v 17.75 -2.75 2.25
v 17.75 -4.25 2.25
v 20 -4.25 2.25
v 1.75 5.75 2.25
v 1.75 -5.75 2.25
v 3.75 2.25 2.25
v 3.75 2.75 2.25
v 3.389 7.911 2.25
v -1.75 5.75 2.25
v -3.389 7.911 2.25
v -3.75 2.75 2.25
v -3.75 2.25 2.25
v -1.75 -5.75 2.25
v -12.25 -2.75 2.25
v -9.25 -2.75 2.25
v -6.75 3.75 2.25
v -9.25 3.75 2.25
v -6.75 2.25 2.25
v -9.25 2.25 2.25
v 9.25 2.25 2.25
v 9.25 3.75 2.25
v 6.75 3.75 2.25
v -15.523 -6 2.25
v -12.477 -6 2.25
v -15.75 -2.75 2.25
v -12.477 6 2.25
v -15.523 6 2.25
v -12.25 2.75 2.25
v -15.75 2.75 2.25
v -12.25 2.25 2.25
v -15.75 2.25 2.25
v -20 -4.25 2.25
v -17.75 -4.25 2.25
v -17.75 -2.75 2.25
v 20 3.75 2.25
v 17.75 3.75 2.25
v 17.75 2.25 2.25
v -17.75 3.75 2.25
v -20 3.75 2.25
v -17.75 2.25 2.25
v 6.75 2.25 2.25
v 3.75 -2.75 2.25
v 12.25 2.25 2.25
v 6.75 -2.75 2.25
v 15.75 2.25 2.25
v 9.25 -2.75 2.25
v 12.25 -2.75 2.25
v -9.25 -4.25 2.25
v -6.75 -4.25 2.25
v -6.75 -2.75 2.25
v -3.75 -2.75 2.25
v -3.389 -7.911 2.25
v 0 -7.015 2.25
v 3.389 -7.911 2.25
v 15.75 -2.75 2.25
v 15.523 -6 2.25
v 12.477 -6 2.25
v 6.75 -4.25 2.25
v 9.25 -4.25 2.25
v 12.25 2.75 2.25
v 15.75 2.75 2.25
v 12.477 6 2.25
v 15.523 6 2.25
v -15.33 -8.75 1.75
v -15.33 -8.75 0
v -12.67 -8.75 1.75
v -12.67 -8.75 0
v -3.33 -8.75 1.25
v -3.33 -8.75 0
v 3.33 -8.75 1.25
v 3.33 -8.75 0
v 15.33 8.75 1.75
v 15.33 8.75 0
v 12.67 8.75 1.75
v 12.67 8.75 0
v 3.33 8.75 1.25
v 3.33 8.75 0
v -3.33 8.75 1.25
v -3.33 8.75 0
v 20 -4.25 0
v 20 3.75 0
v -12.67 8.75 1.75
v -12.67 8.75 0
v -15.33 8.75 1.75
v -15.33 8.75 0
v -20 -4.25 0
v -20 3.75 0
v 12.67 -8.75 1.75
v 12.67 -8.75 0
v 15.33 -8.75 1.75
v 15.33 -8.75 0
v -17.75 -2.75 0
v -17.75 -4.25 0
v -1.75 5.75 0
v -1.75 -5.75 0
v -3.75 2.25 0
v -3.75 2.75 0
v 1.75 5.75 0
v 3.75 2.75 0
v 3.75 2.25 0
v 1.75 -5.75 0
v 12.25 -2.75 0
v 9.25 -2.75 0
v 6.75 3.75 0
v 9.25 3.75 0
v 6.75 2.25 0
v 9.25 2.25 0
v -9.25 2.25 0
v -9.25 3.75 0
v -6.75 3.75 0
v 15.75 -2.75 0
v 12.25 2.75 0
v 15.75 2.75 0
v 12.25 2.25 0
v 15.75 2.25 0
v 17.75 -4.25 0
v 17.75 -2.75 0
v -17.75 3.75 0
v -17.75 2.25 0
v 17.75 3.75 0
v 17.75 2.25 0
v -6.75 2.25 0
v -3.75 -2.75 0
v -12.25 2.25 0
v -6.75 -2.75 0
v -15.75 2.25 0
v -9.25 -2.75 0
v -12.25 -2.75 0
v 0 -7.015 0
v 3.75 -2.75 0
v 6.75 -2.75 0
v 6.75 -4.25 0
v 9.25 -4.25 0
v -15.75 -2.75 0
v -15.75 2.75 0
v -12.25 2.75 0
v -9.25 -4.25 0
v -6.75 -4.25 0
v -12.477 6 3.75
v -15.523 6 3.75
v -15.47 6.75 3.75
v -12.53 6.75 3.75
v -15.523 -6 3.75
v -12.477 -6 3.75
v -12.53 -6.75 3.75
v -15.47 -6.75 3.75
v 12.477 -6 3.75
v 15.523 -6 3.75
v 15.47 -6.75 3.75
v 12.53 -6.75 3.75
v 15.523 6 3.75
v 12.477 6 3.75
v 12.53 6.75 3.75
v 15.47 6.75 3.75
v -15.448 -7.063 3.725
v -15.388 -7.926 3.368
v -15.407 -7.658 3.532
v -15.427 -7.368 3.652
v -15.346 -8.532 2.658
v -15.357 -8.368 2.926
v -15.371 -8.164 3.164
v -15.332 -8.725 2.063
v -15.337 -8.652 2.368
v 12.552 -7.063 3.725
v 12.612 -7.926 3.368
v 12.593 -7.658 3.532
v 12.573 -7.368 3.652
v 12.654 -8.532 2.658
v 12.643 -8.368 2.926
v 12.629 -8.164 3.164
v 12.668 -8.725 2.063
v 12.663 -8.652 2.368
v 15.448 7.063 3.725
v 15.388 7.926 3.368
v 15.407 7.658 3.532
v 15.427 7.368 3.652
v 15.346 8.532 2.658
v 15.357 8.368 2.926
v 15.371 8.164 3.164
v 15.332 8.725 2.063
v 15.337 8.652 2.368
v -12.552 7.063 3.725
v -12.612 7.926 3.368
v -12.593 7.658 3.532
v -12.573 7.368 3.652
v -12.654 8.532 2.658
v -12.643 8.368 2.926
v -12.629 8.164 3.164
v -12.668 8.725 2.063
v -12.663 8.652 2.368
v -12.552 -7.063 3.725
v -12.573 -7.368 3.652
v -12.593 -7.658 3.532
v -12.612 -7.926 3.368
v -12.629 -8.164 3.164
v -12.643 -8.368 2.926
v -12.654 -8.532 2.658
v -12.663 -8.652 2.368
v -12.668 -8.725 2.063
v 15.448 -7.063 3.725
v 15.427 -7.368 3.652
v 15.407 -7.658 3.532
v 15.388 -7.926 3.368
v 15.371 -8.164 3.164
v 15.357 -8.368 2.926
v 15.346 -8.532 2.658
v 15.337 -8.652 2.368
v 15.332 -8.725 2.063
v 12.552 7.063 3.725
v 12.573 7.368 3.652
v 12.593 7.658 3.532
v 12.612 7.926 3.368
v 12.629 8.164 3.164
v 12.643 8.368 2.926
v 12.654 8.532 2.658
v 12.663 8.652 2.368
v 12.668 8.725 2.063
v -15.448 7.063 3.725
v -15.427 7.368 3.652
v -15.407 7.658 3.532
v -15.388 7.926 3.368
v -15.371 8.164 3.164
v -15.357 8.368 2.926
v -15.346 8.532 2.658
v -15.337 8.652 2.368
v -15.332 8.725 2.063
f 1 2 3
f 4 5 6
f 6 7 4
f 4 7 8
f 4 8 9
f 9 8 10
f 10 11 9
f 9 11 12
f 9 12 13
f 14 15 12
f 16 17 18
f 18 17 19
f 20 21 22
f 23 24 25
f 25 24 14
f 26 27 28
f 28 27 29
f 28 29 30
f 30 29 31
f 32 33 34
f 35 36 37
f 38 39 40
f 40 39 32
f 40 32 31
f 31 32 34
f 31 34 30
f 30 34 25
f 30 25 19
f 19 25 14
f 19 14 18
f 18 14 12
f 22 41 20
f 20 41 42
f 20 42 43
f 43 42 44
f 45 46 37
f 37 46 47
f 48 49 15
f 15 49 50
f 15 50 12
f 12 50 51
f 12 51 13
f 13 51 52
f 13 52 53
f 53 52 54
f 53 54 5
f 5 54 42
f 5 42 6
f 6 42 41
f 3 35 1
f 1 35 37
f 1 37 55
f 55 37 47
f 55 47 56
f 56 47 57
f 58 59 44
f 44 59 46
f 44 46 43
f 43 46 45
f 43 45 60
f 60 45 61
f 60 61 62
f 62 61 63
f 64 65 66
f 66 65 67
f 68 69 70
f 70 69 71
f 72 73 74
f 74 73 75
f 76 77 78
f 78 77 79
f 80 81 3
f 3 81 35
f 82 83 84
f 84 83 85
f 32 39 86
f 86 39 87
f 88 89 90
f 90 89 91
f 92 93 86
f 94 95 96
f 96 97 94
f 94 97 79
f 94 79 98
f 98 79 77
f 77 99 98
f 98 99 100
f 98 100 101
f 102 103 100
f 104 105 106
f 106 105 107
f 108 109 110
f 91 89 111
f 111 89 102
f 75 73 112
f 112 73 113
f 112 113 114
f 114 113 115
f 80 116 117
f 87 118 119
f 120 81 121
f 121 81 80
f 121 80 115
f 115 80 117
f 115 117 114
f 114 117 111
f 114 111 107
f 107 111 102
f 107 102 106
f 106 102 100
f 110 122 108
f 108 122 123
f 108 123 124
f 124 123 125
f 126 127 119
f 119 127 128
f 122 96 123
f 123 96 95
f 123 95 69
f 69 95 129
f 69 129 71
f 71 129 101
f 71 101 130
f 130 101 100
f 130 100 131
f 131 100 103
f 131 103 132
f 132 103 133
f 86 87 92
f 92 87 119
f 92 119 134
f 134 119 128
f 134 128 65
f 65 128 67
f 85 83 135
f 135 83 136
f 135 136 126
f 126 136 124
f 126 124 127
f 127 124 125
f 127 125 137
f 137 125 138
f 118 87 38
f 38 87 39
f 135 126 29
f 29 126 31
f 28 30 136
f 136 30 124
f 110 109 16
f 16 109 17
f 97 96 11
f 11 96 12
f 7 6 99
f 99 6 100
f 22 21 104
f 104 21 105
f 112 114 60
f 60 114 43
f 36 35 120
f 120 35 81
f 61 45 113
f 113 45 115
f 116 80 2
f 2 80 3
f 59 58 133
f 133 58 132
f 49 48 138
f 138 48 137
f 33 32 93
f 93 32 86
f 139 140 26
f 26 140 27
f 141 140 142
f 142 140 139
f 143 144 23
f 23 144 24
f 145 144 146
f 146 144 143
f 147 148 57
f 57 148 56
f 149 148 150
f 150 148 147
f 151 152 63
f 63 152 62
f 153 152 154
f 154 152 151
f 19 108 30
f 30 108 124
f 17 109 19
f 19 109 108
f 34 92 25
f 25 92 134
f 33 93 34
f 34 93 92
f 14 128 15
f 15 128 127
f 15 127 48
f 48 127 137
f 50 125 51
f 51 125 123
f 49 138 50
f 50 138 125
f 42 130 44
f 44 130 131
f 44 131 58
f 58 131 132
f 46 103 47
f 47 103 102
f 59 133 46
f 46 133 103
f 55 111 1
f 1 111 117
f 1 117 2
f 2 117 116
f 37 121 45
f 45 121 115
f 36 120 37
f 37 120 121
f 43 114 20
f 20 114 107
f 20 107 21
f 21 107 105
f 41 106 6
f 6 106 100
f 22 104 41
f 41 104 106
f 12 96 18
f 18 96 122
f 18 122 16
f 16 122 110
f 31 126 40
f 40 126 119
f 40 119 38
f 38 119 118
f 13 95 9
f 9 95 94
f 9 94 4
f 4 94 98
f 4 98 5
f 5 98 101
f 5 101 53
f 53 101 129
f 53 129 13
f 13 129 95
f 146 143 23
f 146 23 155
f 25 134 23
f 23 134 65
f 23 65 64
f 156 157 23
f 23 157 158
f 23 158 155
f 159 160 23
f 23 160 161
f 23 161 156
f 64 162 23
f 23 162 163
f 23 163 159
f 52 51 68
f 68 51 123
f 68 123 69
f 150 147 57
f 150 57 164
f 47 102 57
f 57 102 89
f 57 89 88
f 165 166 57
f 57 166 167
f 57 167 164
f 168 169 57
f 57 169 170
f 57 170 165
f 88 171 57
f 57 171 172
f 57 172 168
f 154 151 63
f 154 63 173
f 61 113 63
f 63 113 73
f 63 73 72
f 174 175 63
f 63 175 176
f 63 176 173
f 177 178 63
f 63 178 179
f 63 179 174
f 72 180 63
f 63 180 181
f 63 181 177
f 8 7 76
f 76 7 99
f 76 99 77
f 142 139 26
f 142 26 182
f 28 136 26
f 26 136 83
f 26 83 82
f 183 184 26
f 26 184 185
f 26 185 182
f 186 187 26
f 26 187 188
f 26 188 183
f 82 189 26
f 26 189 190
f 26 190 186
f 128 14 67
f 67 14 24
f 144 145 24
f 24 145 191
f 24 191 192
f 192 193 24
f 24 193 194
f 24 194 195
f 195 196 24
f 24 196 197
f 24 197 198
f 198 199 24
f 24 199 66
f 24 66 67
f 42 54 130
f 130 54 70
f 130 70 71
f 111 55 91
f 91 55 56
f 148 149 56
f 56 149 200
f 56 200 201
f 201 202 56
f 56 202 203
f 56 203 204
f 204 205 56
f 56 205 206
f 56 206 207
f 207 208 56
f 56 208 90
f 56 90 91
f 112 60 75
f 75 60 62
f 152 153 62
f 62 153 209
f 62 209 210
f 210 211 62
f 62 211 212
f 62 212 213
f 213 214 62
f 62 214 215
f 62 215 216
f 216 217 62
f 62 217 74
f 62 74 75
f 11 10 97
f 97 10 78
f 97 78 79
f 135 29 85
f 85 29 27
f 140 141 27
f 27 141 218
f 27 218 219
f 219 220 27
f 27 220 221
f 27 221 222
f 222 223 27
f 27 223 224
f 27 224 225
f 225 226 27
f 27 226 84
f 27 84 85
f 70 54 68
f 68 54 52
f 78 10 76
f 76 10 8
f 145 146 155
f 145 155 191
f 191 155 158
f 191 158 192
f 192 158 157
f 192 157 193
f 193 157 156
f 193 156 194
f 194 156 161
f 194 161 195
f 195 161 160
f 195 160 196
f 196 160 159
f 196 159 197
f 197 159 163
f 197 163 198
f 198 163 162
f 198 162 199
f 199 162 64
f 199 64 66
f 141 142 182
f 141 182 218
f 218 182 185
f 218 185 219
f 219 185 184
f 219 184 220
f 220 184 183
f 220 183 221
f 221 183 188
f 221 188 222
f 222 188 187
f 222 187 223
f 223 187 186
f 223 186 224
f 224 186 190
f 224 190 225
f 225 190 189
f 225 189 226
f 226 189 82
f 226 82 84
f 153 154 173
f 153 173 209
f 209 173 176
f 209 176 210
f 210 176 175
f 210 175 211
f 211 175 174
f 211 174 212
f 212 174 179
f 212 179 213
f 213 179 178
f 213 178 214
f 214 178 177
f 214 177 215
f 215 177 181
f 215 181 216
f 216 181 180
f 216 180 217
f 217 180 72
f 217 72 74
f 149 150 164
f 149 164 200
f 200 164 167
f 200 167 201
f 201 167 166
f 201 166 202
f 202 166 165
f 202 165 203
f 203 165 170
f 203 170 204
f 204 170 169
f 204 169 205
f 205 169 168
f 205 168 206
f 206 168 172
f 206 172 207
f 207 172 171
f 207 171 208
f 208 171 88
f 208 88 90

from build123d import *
from OCP.BRepFilletAPI import BRepFilletAPI_MakeChamfer

# Parameters (mm, degrees)
ESBO_O10_W               = 40
ESBO_O10_H               = 17.5
RESSALTO_EXTRUS_O6_DEPTH = 2.25
CORTE_EXTRUS_O2_DEPTH    = 2.5
ESBO_O12_W               = 3.5
ESBO_O12_H               = 2.75
RESSALTO_EXTRUS_O7_DEPTH = 1.5
ESBO_O13_W               = 3
ESBO_O13_H               = 1.5
ESBO_O13_W_2             = 2
CORTE_EXTRUS_O3_DEPTH    = 8
CORTE_EXTRUS_O4_DEPTH    = 20
CHANFRO5_SIZE            = 6
CHANFRO5_SIZE_2          = 0.419560872
CHANFRO6_SIZE            = 1
CHANFRO6_SIZE2           = 0.839099631
FILETE1_R                = 2


with BuildPart() as part:
    # Esboço10 → Ressalto-extrusão6 (new body)
    with BuildSketch(Plane.XY):
        Rectangle(ESBO_O10_W, ESBO_O10_H)
    extrude(amount=RESSALTO_EXTRUS_O6_DEPTH)

    # Esboço11 → Corte-extrusão2 (cut)
    with BuildSketch(Plane.XY.offset(2.25)):
        Polygon((-20, 3.75), (-15.75, 3.75), (-15.75, 8.75), (-12.25, 8.75), (-12.25, 3.75), (-3.75, 3.75), (-3.75, 9.75), (3.75, 9.75), (3.75, 3.75), (12.25, 3.75), (12.25, 8.75), (15.75, 8.75), (15.75, 3.75), (20, 3.75), (20, 11.902365005), (-20, 11.902365005), align=None)
        Polygon((-20, -4.25), (-15.75, -4.25), (-15.75, -8.75), (-12.25, -8.75), (-12.25, -4.25), (-3.75, -4.25), (-3.75, -10.25), (3.75, -9.74672567), (3.75, -4.25), (12.25, -4.25), (12.25, -8.75), (15.75, -8.75), (15.75, -4.25), (20, -4.25), (20, -11.31917021), (-20, -11.31917021), align=None)
    extrude(amount=-CORTE_EXTRUS_O2_DEPTH, mode=Mode.SUBTRACT)

    # Esboço12 → Ressalto-extrusão7 (add)
    with BuildSketch(Plane.XY.offset(2.25)):
        with Locations((-14, 7.375)):
            Rectangle(ESBO_O12_W, ESBO_O12_H)
        with Locations((-14, -7.375)):
            Rectangle(ESBO_O12_W, ESBO_O12_H)
        with Locations((14, -7.375)):
            Rectangle(ESBO_O12_W, ESBO_O12_H)
        with Locations((14, 7.375)):
            Rectangle(ESBO_O12_W, ESBO_O12_H)
    extrude(amount=RESSALTO_EXTRUS_O7_DEPTH)

    # Esboço13 → Corte-extrusão3 (cut)
    with BuildSketch(Plane.XY.offset(2.25)):
        with Locations((-10.75, 3)):
            Rectangle(ESBO_O13_W, ESBO_O13_H)
        with Locations((-5.25, 3)):
            Rectangle(ESBO_O13_W, ESBO_O13_H)
        with Locations((5.25, 3)):
            Rectangle(ESBO_O13_W, ESBO_O13_H)
        with Locations((10.75, 3)):
            Rectangle(ESBO_O13_W, ESBO_O13_H)
        with Locations((10.75, -3.5)):
            Rectangle(ESBO_O13_W, ESBO_O13_H)
        with Locations((5.25, -3.5)):
            Rectangle(ESBO_O13_W, ESBO_O13_H)
        with Locations((-5.25, -3.5)):
            Rectangle(ESBO_O13_W, ESBO_O13_H)
        with Locations((-10.75, -3.5)):
            Rectangle(ESBO_O13_W, ESBO_O13_H)
        with Locations((-16.75, -3.5)):
            Rectangle(ESBO_O13_W_2, ESBO_O13_H)
        with Locations((-16.75, 3)):
            Rectangle(ESBO_O13_W_2, ESBO_O13_H)
        with Locations((16.75, 3)):
            Rectangle(ESBO_O13_W_2, ESBO_O13_H)
        with Locations((16.75, -3.5)):
            Rectangle(ESBO_O13_W_2, ESBO_O13_H)
    extrude(amount=-CORTE_EXTRUS_O3_DEPTH, mode=Mode.SUBTRACT)

    # Esboço15 → Corte-extrusão4 (cut)
    with BuildSketch(Plane.XY.offset(2.25)):
        Polygon((-1.75, 5.75), (1.75, 5.75), (1.75, -5.75), (0, -7.015048633), (-1.75, -5.75), align=None)
    extrude(amount=-CORTE_EXTRUS_O4_DEPTH, mode=Mode.SUBTRACT)

    # Chanfro5
    chanfro5_edges_1 = [part.edges().sort_by_distance(p)[0] for p in [
        (-15.75, -8.75, 1.875),
    ]]
    chanfro5_side_1 = [part.faces().sort_by_distance(p)[0] for p in [
        (-15.75, -8.741608783, 1.875),
    ]]
    chanfro5_edges_2 = [part.edges().sort_by_distance(p)[0] for p in [
        (-3.75, -8.75, 1.125),
    ]]
    chanfro5_side_2 = [part.faces().sort_by_distance(p)[0] for p in [
        (-3.75, -8.741608783, 1.125),
    ]]
    chanfro5_edges_3 = [part.edges().sort_by_distance(p)[0] for p in [
        (12.25, -8.75, 1.875),
    ]]
    chanfro5_side_3 = [part.faces().sort_by_distance(p)[0] for p in [
        (12.25, -8.741608783, 1.875),
    ]]
    chanfro5_edges_4 = [part.edges().sort_by_distance(p)[0] for p in [
        (15.75, 8.75, 1.875),
    ]]
    chanfro5_side_4 = [part.faces().sort_by_distance(p)[0] for p in [
        (15.741608783, 8.75, 1.875),
    ]]
    chanfro5_edges_5 = [part.edges().sort_by_distance(p)[0] for p in [
        (3.75, 8.75, 1.125),
    ]]
    chanfro5_side_5 = [part.faces().sort_by_distance(p)[0] for p in [
        (3.741608783, 8.75, 1.125),
    ]]
    chanfro5_edges_6 = [part.edges().sort_by_distance(p)[0] for p in [
        (-12.25, 8.75, 1.875),
    ]]
    chanfro5_side_6 = [part.faces().sort_by_distance(p)[0] for p in [
        (-12.258391217, 8.75, 1.875),
    ]]
    chanfro5_edges_7 = [part.edges().sort_by_distance(p)[0] for p in [
        (-12.25, -8.75, 1.875),
    ]]
    chanfro5_side_7 = [part.faces().sort_by_distance(p)[0] for p in [
        (-12.258391217, -8.75, 1.875),
    ]]
    chanfro5_edges_8 = [part.edges().sort_by_distance(p)[0] for p in [
        (3.75, -8.75, 1.125),
    ]]
    chanfro5_side_8 = [part.faces().sort_by_distance(p)[0] for p in [
        (3.741608783, -8.75, 1.125),
    ]]
    chanfro5_edges_9 = [part.edges().sort_by_distance(p)[0] for p in [
        (15.75, -8.75, 1.875),
    ]]
    chanfro5_side_9 = [part.faces().sort_by_distance(p)[0] for p in [
        (15.741608783, -8.75, 1.875),
    ]]
    chanfro5_edges_10 = [part.edges().sort_by_distance(p)[0] for p in [
        (12.25, 8.75, 1.875),
    ]]
    chanfro5_side_10 = [part.faces().sort_by_distance(p)[0] for p in [
        (12.25, 8.741608783, 1.875),
    ]]
    chanfro5_edges_11 = [part.edges().sort_by_distance(p)[0] for p in [
        (-3.75, 8.75, 1.125),
    ]]
    chanfro5_side_11 = [part.faces().sort_by_distance(p)[0] for p in [
        (-3.75, 8.741608783, 1.125),
    ]]
    chanfro5_edges_12 = [part.edges().sort_by_distance(p)[0] for p in [
        (-15.75, 8.75, 1.875),
    ]]
    chanfro5_side_12 = [part.faces().sort_by_distance(p)[0] for p in [
        (-15.741608783, 8.75, 1.875),
    ]]
    chanfro5 = BRepFilletAPI_MakeChamfer(part.part.solid().wrapped)
    for e in chanfro5_edges_1:
        chanfro5.Add(CHANFRO5_SIZE - 0.0001, CHANFRO5_SIZE_2 - 0.0001, e.wrapped, chanfro5_side_1[0].wrapped)
    for e in chanfro5_edges_2:
        chanfro5.Add(CHANFRO5_SIZE - 0.0001, CHANFRO5_SIZE_2 - 0.0001, e.wrapped, chanfro5_side_2[0].wrapped)
    for e in chanfro5_edges_3:
        chanfro5.Add(CHANFRO5_SIZE - 0.0001, CHANFRO5_SIZE_2 - 0.0001, e.wrapped, chanfro5_side_3[0].wrapped)
    for e in chanfro5_edges_4:
        chanfro5.Add(CHANFRO5_SIZE_2 - 0.0001, CHANFRO5_SIZE - 0.0001, e.wrapped, chanfro5_side_4[0].wrapped)
    for e in chanfro5_edges_5:
        chanfro5.Add(CHANFRO5_SIZE_2 - 0.0001, CHANFRO5_SIZE - 0.0001, e.wrapped, chanfro5_side_5[0].wrapped)
    for e in chanfro5_edges_6:
        chanfro5.Add(CHANFRO5_SIZE_2 - 0.0001, CHANFRO5_SIZE - 0.0001, e.wrapped, chanfro5_side_6[0].wrapped)
    for e in chanfro5_edges_7:
        chanfro5.Add(CHANFRO5_SIZE_2 - 0.0001, CHANFRO5_SIZE - 0.0001, e.wrapped, chanfro5_side_7[0].wrapped)
    for e in chanfro5_edges_8:
        chanfro5.Add(CHANFRO5_SIZE_2 - 0.0001, CHANFRO5_SIZE - 0.0001, e.wrapped, chanfro5_side_8[0].wrapped)
    for e in chanfro5_edges_9:
        chanfro5.Add(CHANFRO5_SIZE_2 - 0.0001, CHANFRO5_SIZE - 0.0001, e.wrapped, chanfro5_side_9[0].wrapped)
    for e in chanfro5_edges_10:
        chanfro5.Add(CHANFRO5_SIZE - 0.0001, CHANFRO5_SIZE_2 - 0.0001, e.wrapped, chanfro5_side_10[0].wrapped)
    for e in chanfro5_edges_11:
        chanfro5.Add(CHANFRO5_SIZE - 0.0001, CHANFRO5_SIZE_2 - 0.0001, e.wrapped, chanfro5_side_11[0].wrapped)
    for e in chanfro5_edges_12:
        chanfro5.Add(CHANFRO5_SIZE_2 - 0.0001, CHANFRO5_SIZE - 0.0001, e.wrapped, chanfro5_side_12[0].wrapped)
    add(Compound.cast(chanfro5.Shape()), mode=Mode.REPLACE)  # a hair under: the kernel refuses the full size

    # Chanfro6: one chamfer whose edges measure the first distance from different faces: ONE call of the kernel's chamfer builder (chamfer() names one face for all edges)
    chanfro6_edges_1 = [part.edges().sort_by_distance(p)[0] for p in [
        (0, -8.75, 2.25),
    ]]
    chanfro6_side_1 = [part.faces().sort_by_distance(p)[0] for p in [
        (0, -8.75, 1.125),
    ]]
    chanfro6_edges_2 = [part.edges().sort_by_distance(p)[0] for p in [
        (0, 8.75, 2.25),
    ]]
    chanfro6_side_2 = [part.faces().sort_by_distance(p)[0] for p in [
        (0, 8.75, 1.125),
    ]]
    chanfro6 = BRepFilletAPI_MakeChamfer(part.part.solid().wrapped)
    for e in chanfro6_edges_1:
        chanfro6.Add(CHANFRO6_SIZE, CHANFRO6_SIZE2, e.wrapped, chanfro6_side_1[0].wrapped)  # the first distance lies on this face
    for e in chanfro6_edges_2:
        chanfro6.Add(CHANFRO6_SIZE, CHANFRO6_SIZE2, e.wrapped, chanfro6_side_2[0].wrapped)  # the first distance lies on this face
    add(Compound.cast(chanfro6.Shape()), mode=Mode.REPLACE)

    # Filete1
    filete1_edges = [part.edges().sort_by_distance(p)[0] for p in [
        (-14, -8.75, 3.75),
        (14, -8.75, 3.75),
        (14, 8.75, 3.75),
        (-14, 8.75, 3.75),
    ]]
    fillet(filete1_edges, radius=FILETE1_R)


solid = part.part
